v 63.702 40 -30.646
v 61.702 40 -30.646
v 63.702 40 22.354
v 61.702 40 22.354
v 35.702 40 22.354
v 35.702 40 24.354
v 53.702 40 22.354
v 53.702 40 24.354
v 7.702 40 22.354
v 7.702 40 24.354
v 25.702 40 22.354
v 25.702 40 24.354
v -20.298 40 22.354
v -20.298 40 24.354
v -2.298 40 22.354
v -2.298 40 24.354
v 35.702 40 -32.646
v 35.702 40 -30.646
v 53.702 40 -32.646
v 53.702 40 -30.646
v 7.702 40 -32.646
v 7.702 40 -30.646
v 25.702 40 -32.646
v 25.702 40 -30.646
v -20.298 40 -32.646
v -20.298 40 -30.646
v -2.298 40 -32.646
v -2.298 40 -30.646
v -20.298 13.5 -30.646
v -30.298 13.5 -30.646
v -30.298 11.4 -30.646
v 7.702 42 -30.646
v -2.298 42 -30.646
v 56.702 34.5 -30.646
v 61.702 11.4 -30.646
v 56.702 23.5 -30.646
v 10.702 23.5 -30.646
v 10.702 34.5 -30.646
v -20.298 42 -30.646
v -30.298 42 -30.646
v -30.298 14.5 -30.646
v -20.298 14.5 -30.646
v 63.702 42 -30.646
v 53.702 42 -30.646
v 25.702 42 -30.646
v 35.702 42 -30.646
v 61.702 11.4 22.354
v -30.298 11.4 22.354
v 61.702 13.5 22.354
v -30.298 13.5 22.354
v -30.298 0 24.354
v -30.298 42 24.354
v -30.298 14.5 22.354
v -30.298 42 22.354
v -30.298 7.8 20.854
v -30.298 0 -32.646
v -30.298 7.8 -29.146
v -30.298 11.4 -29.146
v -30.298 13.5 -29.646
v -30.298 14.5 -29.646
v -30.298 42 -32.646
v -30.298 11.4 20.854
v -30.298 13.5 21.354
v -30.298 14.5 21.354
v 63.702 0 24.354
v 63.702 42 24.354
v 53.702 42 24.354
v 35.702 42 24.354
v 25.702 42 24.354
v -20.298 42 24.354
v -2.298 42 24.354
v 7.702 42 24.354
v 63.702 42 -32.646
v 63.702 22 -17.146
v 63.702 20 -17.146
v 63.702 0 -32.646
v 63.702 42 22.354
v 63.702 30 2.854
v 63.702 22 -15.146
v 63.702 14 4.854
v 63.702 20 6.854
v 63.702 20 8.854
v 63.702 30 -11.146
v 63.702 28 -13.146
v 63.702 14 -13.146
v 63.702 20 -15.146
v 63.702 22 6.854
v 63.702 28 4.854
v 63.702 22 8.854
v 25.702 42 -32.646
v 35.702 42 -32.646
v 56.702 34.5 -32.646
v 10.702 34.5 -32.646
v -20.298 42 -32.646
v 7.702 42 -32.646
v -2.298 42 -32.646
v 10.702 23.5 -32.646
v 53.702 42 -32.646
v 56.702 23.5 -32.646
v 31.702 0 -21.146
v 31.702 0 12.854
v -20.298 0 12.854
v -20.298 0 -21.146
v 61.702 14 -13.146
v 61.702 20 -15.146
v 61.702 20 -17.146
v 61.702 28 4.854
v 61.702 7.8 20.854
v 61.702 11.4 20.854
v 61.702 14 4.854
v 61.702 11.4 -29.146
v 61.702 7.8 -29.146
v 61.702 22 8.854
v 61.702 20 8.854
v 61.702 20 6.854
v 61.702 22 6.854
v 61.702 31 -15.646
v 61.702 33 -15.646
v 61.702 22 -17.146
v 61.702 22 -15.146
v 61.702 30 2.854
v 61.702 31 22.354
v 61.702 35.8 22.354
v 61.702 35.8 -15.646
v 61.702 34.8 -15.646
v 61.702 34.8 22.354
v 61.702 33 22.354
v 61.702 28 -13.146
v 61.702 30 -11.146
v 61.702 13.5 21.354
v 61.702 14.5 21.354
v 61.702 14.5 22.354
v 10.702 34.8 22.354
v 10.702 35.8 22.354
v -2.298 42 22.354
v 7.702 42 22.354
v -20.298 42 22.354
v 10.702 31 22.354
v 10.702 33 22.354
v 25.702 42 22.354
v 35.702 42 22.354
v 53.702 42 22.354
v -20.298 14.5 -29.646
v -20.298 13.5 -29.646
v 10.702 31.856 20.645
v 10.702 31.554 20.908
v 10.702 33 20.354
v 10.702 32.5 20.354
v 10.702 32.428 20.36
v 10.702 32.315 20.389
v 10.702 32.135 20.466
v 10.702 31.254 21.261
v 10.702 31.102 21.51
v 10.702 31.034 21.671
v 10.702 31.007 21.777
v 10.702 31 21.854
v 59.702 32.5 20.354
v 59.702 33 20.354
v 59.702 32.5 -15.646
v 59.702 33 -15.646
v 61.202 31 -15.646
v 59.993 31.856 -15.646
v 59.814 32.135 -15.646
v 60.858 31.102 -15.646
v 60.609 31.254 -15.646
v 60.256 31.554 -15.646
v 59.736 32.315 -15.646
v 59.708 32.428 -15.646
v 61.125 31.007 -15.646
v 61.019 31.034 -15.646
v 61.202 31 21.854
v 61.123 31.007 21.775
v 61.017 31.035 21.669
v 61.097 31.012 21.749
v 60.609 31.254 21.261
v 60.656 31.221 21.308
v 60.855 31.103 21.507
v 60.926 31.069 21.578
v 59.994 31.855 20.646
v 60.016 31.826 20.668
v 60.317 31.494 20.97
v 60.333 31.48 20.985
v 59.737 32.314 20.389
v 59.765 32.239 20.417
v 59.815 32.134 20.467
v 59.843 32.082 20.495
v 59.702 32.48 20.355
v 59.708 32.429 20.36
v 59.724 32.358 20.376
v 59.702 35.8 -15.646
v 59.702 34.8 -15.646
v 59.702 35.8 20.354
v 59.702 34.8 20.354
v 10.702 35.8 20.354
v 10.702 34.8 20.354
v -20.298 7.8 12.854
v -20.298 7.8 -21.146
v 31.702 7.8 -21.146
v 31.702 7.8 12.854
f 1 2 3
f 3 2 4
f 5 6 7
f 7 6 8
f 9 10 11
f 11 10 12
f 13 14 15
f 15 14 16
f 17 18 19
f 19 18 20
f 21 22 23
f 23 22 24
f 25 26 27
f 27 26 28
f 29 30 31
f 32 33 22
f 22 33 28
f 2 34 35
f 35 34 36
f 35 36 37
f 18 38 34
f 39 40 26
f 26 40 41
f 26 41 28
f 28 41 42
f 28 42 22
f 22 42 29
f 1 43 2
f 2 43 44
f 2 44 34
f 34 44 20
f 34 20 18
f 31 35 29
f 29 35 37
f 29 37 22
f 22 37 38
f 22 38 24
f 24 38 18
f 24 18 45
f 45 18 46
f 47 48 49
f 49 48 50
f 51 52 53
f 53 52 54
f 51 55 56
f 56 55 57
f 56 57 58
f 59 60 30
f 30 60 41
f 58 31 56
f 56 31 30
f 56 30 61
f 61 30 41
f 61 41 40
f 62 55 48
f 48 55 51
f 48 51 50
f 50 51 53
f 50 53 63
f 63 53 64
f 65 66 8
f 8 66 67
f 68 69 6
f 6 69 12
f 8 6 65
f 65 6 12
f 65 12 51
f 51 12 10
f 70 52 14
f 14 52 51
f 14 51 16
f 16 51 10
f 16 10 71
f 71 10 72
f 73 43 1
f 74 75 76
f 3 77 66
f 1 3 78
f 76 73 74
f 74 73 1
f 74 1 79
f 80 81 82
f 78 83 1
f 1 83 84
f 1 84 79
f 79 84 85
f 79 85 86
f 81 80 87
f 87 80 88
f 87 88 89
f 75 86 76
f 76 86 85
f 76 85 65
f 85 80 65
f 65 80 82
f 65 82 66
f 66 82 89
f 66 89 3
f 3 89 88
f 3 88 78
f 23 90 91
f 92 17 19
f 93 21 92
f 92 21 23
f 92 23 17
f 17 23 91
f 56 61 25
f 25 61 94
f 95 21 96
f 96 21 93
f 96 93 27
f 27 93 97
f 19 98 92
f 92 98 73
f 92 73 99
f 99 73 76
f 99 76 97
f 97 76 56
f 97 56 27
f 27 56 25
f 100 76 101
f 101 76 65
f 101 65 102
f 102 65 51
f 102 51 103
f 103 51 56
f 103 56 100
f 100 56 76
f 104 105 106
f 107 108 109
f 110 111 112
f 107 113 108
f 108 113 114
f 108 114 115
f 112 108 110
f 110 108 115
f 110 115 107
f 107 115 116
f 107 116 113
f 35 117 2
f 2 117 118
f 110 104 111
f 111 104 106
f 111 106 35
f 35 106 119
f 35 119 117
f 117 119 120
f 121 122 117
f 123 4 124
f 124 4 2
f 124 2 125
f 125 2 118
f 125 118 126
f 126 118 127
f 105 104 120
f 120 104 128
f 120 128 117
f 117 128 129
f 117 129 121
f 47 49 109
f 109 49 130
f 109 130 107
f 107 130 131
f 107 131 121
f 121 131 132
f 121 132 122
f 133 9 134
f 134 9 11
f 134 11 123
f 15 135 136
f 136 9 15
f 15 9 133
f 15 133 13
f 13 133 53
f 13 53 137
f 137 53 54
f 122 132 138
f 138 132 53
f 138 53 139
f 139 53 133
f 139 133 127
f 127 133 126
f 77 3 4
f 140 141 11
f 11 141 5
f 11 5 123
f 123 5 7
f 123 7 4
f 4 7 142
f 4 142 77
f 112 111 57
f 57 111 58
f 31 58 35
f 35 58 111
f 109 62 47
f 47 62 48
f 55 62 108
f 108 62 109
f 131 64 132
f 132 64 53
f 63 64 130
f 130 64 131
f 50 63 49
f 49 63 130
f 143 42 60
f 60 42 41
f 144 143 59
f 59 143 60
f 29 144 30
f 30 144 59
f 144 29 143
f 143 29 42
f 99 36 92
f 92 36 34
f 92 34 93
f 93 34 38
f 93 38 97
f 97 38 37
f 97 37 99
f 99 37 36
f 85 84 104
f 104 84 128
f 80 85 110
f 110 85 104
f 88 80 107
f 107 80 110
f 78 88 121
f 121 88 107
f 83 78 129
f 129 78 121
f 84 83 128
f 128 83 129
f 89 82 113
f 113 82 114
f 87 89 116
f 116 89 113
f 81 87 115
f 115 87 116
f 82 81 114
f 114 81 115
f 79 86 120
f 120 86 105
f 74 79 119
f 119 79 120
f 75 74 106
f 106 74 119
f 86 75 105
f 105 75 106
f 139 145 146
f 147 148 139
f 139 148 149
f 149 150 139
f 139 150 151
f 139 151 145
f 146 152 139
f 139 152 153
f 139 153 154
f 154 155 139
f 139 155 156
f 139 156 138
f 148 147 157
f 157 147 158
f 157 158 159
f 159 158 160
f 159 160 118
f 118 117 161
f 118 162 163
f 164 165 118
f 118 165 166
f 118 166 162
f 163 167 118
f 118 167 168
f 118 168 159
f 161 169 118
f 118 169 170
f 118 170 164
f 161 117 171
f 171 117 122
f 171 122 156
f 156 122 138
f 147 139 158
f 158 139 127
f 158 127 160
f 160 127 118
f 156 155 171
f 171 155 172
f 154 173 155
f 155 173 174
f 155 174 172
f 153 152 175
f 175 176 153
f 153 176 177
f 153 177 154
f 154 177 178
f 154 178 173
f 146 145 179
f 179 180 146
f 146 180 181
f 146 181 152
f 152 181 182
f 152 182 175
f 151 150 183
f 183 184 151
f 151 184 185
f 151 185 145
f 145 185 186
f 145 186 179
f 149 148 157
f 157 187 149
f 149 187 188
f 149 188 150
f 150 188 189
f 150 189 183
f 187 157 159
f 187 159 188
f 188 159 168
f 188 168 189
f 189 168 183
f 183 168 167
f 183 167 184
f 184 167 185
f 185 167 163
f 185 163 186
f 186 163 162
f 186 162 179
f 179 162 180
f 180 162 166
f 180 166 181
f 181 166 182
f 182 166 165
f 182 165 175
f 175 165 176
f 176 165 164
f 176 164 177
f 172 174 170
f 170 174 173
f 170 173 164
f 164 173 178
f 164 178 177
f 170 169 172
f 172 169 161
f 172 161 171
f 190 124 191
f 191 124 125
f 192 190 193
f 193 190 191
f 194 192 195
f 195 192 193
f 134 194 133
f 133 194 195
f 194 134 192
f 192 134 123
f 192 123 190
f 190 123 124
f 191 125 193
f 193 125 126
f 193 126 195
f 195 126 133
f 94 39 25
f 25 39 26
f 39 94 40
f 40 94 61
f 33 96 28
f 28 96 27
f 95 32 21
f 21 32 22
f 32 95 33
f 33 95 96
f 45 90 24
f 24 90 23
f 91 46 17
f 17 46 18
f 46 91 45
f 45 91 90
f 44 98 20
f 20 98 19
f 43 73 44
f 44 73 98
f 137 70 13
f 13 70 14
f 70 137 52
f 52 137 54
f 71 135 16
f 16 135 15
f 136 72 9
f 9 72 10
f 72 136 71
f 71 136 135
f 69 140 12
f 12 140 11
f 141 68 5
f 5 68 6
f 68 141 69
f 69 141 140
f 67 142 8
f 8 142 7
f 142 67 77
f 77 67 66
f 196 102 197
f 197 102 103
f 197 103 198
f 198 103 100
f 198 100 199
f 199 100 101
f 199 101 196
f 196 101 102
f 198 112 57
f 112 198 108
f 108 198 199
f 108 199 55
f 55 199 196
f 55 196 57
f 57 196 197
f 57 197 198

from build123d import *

# Parameters (mm, degrees)
SKETCH1_W               = 94
SKETCH1_H               = 57
BOSS_EXTRUDE1_DEPTH     = 10
BOSS_EXTRUDE2_DEPTH     = 30
SKETCH3_W               = 1.5
SKETCH3_H               = 1.4
SKETCH3_W_2             = 1
SKETCH3_H_2             = 1
BOSS_EXTRUDE3_DEPTH     = 92
SKETCH3_3_W             = 1
SKETCH3_3_H             = 1
BOSS_EXTRUDE4_DEPTH     = 10
SKETCH4_W               = 46
SKETCH4_H               = 11
CUT_EXTRUDE1_DEPTH      = 10
SKETCH5_W               = 2
SKETCH5_H               = 2
CUT_EXTRUDE2_DEPTH      = 2
BOSS_EXTRUDE5_DEPTH     = 2
FILLET1_SIZE            = 1.5
BOSS_EXTRUDE6_DEPTH     = 1
SKETCH9_W               = 10
SKETCH9_H               = 2
BOSS_EXTRUDE7_DEPTH     = 2
CUT_EXTRUDE3_DEPTH      = 79.407264077
CUT_EXTRUDE3_DEPTH_BACK = 79.407264077
SKETCH10_W              = 52
SKETCH10_H              = 34
SKETCH11_W              = 92
SKETCH11_H              = 50
CUT_EXTRUDE4_DEPTH      = 2.2


with BuildPart() as part:
    # Sketch1 → Boss-Extrude1 (new body)
    with BuildSketch(Plane(origin=(0, 0, 0), x_dir=(1, 0, 0), z_dir=(0, 1, 0))):
        with Locations((16.701972288, 4.145945946)):
            Rectangle(SKETCH1_W, SKETCH1_H)
    extrude(amount=BOSS_EXTRUDE1_DEPTH)

    # Sketch2 → Boss-Extrude2 (add)
    with BuildSketch(Plane(origin=(0, 10, 0), x_dir=(1, 0, 0), z_dir=(0, 1, 0))):
        Polygon((-30.298027712, 32.645945946), (63.701972288, 32.645945946), (63.701972288, -24.354054054), (-30.298027712, -24.354054054), (-30.298027712, -22.354054054), (61.701972288, -22.354054054), (61.701972288, 30.645945946), (-30.298027712, 30.645945946), align=None)
    extrude(amount=BOSS_EXTRUDE2_DEPTH)

    # Sketch3 → Boss-Extrude3 (add)
    with BuildSketch(Plane.ZY.offset(30.298027712)):
        with Locations((-29.895945946, 10.7)):
            Rectangle(SKETCH3_W, SKETCH3_H)
        with Locations((21.604054054, 10.7)):
            Rectangle(SKETCH3_W, SKETCH3_H)
        with Locations((21.854054054, 14)):
            Rectangle(SKETCH3_W_2, SKETCH3_H_2)
    extrude(amount=-BOSS_EXTRUDE3_DEPTH)

    # Sketch3<3> → Boss-Extrude4 (add)
    with BuildSketch(Plane.ZY.offset(30.298027712)):
        with Locations((-30.145945946, 14)):
            Rectangle(SKETCH3_3_W, SKETCH3_3_H)
    extrude(amount=-BOSS_EXTRUDE4_DEPTH)

    # Sketch4 → Cut-Extrude1 (cut)
    with BuildSketch(Plane(origin=(0, 0, -32.645945946), x_dir=(-1, 0, 0), z_dir=(0, 0, -1))):
        with Locations((-33.701972288, 29)):
            Rectangle(SKETCH4_W, SKETCH4_H)
    extrude(amount=-CUT_EXTRUDE1_DEPTH, mode=Mode.SUBTRACT)

    # Sketch5 → Cut-Extrude2 (cut)
    with BuildSketch(Plane(origin=(63.701972288, 0, 0), x_dir=(0, 0, -1), z_dir=(1, 0, 0))):
        Polygon((-2.854054054, 30), (11.145945946, 30), (13.145945946, 28), (13.145945946, 14), (-4.854054054, 14), (-4.854054054, 28), align=None)
        with Locations((-7.854054054, 21)):
            Rectangle(SKETCH5_W, SKETCH5_H)
        with Locations((16.145945946, 21)):
            Rectangle(SKETCH5_W, SKETCH5_H)
    extrude(amount=-CUT_EXTRUDE2_DEPTH, mode=Mode.SUBTRACT)

    # Sketch7 → Boss-Extrude5 (add)
    with BuildSketch(Plane(origin=(0, 33, 0), x_dir=(1, 0, 0), z_dir=(0, 1, 0))):
        Polygon((10.701972288, -22.354054054), (61.701972288, -22.354054054), (61.701972288, -20.354054054), (61.701972288, 15.645945946), (59.701972288, 15.645945946), (59.701972288, -20.354054054), (10.701972288, -20.354054054), align=None)
    extrude(amount=-BOSS_EXTRUDE5_DEPTH)

    # Fillet1
    # a fillet whose section is not a circle: 1.5 mm, written as the material it takes off along each edge
    with BuildSketch(Plane(origin=(59.701972288, 31, -19.395945946), x_dir=(1, 0, 0), z_dir=(0, 0, 1))) as fillet1_piece_1:
        with BuildLine():
            Bezier((FILLET1_SIZE, 0), (0, 0), (0, FILLET1_SIZE), weights=[1, 0.353553391, 1])
            Line((0, FILLET1_SIZE), (0, 0))
            Line((0, 0), (FILLET1_SIZE, 0))
        make_face()
    extrude(amount=39.75, mode=Mode.SUBTRACT)
    with BuildSketch(Plane(origin=(59.701972288, 31, 20.354054054), x_dir=(0, 0, 1), z_dir=(-1, 0, 0))) as fillet1_piece_2:
        with BuildLine():
            Bezier((FILLET1_SIZE, 0), (0, 0), (0, FILLET1_SIZE), weights=[1, 0.353553391, 1])
            Line((0, FILLET1_SIZE), (0, 0))
            Line((0, 0), (FILLET1_SIZE, 0))
        make_face()
    extrude(amount=52.75, mode=Mode.SUBTRACT)
    with BuildSketch(Plane(origin=(59.701972288, 31, -19.395945946), x_dir=(1, 0, 0), z_dir=(0, 0, 1))) as fillet1_piece_3a_section:
        with BuildLine():
            Bezier((FILLET1_SIZE, 0), (0, 0), (0, FILLET1_SIZE), weights=[1, 0.353553391, 1])
            Line((0, FILLET1_SIZE), (0, 0))
            Line((0, 0), (FILLET1_SIZE, 0))
        make_face()
    fillet1_piece_3a = extrude(amount=43.5, mode=Mode.PRIVATE)
    fillet1_piece_3a = split(fillet1_piece_3a, bisect_by=Plane(origin=(59.701972288, 31, 22.354054054), z_dir=(0, 0, -1)), keep=Keep.TOP, mode=Mode.PRIVATE)
    fillet1_piece_3a = split(fillet1_piece_3a, bisect_by=Plane(origin=(59.701972288, 31, 20.354054054), z_dir=(0, 0, 1)), keep=Keep.TOP, mode=Mode.PRIVATE)
    with BuildSketch(Plane(origin=(63.451972288, 31, 20.354054054), x_dir=(0, 0, 1), z_dir=(-1, 0, 0))) as fillet1_piece_3b_section:
        with BuildLine():
            Bezier((FILLET1_SIZE, 0), (0, 0), (0, FILLET1_SIZE), weights=[1, 0.353553391, 1])
            Line((0, FILLET1_SIZE), (0, 0))
            Line((0, 0), (FILLET1_SIZE, 0))
        make_face()
    fillet1_piece_3b = extrude(amount=56.5, mode=Mode.PRIVATE)
    fillet1_piece_3b = split(fillet1_piece_3b, bisect_by=Plane(origin=(61.701972288, 31, 20.354054054), z_dir=(-1, 0, 0)), keep=Keep.TOP, mode=Mode.PRIVATE)
    fillet1_piece_3b = split(fillet1_piece_3b, bisect_by=Plane(origin=(59.701972288, 31, 20.354054054), z_dir=(1, 0, 0)), keep=Keep.TOP, mode=Mode.PRIVATE)
    fillet1_piece_3 = fillet1_piece_3a & fillet1_piece_3b
    add(fillet1_piece_3, mode=Mode.SUBTRACT)

    # Sketch8 → Boss-Extrude6 (add)
    with BuildSketch(Plane(origin=(0, 34.8, 0), x_dir=(1, 0, 0), z_dir=(0, 1, 0))):
        Polygon((10.701972288, -20.354054054), (59.701972288, -20.354054054), (59.701972288, 15.645945946), (61.701972288, 15.645945946), (61.701972288, -22.354054054), (10.701972288, -22.354054054), align=None)
    extrude(amount=BOSS_EXTRUDE6_DEPTH)

    # Sketch9 → Boss-Extrude7 (add)
    with BuildSketch(Plane(origin=(0, 40, 0), x_dir=(1, 0, 0), z_dir=(0, 1, 0))):
        with Locations((-25.298027712, 31.645945946)):
            Rectangle(SKETCH9_W, SKETCH9_H)
        with Locations((2.701972288, 31.645945946)):
            Rectangle(SKETCH9_W, SKETCH9_H)
        with Locations((30.701972288, 31.645945946)):
            Rectangle(SKETCH9_W, SKETCH9_H)
        with Locations((58.701972288, 31.645945946)):
            Rectangle(SKETCH9_W, SKETCH9_H)
        with Locations((-25.298027712, -23.354054054)):
            Rectangle(SKETCH9_W, SKETCH9_H)
        with Locations((2.701972288, -23.354054054)):
            Rectangle(SKETCH9_W, SKETCH9_H)
        with Locations((30.701972288, -23.354054054)):
            Rectangle(SKETCH9_W, SKETCH9_H)
        with Locations((58.701972288, -23.354054054)):
            Rectangle(SKETCH9_W, SKETCH9_H)
    extrude(amount=BOSS_EXTRUDE7_DEPTH)

    # Sketch10 → Cut-Extrude3 (cut, two sides: drawn at the far end of the back side and taken through both)
    with BuildSketch(Plane(origin=(0, 10, 0), x_dir=(1, 0, 0), z_dir=(0, 1, 0)).offset(-CUT_EXTRUDE3_DEPTH_BACK)):
        with Locations((5.701972288, 4.145945946)):
            Rectangle(SKETCH10_W, SKETCH10_H)
    extrude(amount=CUT_EXTRUDE3_DEPTH + CUT_EXTRUDE3_DEPTH_BACK, mode=Mode.SUBTRACT)

    # Sketch11 → Cut-Extrude4 (cut)
    with BuildSketch(Plane(origin=(0, 10, 0), x_dir=(1, 0, 0), z_dir=(0, 1, 0))):
        with Locations((15.701972288, 4.145945946)):
            Rectangle(SKETCH11_W, SKETCH11_H)
    extrude(amount=-CUT_EXTRUDE4_DEPTH, mode=Mode.SUBTRACT)


solid = part.part
